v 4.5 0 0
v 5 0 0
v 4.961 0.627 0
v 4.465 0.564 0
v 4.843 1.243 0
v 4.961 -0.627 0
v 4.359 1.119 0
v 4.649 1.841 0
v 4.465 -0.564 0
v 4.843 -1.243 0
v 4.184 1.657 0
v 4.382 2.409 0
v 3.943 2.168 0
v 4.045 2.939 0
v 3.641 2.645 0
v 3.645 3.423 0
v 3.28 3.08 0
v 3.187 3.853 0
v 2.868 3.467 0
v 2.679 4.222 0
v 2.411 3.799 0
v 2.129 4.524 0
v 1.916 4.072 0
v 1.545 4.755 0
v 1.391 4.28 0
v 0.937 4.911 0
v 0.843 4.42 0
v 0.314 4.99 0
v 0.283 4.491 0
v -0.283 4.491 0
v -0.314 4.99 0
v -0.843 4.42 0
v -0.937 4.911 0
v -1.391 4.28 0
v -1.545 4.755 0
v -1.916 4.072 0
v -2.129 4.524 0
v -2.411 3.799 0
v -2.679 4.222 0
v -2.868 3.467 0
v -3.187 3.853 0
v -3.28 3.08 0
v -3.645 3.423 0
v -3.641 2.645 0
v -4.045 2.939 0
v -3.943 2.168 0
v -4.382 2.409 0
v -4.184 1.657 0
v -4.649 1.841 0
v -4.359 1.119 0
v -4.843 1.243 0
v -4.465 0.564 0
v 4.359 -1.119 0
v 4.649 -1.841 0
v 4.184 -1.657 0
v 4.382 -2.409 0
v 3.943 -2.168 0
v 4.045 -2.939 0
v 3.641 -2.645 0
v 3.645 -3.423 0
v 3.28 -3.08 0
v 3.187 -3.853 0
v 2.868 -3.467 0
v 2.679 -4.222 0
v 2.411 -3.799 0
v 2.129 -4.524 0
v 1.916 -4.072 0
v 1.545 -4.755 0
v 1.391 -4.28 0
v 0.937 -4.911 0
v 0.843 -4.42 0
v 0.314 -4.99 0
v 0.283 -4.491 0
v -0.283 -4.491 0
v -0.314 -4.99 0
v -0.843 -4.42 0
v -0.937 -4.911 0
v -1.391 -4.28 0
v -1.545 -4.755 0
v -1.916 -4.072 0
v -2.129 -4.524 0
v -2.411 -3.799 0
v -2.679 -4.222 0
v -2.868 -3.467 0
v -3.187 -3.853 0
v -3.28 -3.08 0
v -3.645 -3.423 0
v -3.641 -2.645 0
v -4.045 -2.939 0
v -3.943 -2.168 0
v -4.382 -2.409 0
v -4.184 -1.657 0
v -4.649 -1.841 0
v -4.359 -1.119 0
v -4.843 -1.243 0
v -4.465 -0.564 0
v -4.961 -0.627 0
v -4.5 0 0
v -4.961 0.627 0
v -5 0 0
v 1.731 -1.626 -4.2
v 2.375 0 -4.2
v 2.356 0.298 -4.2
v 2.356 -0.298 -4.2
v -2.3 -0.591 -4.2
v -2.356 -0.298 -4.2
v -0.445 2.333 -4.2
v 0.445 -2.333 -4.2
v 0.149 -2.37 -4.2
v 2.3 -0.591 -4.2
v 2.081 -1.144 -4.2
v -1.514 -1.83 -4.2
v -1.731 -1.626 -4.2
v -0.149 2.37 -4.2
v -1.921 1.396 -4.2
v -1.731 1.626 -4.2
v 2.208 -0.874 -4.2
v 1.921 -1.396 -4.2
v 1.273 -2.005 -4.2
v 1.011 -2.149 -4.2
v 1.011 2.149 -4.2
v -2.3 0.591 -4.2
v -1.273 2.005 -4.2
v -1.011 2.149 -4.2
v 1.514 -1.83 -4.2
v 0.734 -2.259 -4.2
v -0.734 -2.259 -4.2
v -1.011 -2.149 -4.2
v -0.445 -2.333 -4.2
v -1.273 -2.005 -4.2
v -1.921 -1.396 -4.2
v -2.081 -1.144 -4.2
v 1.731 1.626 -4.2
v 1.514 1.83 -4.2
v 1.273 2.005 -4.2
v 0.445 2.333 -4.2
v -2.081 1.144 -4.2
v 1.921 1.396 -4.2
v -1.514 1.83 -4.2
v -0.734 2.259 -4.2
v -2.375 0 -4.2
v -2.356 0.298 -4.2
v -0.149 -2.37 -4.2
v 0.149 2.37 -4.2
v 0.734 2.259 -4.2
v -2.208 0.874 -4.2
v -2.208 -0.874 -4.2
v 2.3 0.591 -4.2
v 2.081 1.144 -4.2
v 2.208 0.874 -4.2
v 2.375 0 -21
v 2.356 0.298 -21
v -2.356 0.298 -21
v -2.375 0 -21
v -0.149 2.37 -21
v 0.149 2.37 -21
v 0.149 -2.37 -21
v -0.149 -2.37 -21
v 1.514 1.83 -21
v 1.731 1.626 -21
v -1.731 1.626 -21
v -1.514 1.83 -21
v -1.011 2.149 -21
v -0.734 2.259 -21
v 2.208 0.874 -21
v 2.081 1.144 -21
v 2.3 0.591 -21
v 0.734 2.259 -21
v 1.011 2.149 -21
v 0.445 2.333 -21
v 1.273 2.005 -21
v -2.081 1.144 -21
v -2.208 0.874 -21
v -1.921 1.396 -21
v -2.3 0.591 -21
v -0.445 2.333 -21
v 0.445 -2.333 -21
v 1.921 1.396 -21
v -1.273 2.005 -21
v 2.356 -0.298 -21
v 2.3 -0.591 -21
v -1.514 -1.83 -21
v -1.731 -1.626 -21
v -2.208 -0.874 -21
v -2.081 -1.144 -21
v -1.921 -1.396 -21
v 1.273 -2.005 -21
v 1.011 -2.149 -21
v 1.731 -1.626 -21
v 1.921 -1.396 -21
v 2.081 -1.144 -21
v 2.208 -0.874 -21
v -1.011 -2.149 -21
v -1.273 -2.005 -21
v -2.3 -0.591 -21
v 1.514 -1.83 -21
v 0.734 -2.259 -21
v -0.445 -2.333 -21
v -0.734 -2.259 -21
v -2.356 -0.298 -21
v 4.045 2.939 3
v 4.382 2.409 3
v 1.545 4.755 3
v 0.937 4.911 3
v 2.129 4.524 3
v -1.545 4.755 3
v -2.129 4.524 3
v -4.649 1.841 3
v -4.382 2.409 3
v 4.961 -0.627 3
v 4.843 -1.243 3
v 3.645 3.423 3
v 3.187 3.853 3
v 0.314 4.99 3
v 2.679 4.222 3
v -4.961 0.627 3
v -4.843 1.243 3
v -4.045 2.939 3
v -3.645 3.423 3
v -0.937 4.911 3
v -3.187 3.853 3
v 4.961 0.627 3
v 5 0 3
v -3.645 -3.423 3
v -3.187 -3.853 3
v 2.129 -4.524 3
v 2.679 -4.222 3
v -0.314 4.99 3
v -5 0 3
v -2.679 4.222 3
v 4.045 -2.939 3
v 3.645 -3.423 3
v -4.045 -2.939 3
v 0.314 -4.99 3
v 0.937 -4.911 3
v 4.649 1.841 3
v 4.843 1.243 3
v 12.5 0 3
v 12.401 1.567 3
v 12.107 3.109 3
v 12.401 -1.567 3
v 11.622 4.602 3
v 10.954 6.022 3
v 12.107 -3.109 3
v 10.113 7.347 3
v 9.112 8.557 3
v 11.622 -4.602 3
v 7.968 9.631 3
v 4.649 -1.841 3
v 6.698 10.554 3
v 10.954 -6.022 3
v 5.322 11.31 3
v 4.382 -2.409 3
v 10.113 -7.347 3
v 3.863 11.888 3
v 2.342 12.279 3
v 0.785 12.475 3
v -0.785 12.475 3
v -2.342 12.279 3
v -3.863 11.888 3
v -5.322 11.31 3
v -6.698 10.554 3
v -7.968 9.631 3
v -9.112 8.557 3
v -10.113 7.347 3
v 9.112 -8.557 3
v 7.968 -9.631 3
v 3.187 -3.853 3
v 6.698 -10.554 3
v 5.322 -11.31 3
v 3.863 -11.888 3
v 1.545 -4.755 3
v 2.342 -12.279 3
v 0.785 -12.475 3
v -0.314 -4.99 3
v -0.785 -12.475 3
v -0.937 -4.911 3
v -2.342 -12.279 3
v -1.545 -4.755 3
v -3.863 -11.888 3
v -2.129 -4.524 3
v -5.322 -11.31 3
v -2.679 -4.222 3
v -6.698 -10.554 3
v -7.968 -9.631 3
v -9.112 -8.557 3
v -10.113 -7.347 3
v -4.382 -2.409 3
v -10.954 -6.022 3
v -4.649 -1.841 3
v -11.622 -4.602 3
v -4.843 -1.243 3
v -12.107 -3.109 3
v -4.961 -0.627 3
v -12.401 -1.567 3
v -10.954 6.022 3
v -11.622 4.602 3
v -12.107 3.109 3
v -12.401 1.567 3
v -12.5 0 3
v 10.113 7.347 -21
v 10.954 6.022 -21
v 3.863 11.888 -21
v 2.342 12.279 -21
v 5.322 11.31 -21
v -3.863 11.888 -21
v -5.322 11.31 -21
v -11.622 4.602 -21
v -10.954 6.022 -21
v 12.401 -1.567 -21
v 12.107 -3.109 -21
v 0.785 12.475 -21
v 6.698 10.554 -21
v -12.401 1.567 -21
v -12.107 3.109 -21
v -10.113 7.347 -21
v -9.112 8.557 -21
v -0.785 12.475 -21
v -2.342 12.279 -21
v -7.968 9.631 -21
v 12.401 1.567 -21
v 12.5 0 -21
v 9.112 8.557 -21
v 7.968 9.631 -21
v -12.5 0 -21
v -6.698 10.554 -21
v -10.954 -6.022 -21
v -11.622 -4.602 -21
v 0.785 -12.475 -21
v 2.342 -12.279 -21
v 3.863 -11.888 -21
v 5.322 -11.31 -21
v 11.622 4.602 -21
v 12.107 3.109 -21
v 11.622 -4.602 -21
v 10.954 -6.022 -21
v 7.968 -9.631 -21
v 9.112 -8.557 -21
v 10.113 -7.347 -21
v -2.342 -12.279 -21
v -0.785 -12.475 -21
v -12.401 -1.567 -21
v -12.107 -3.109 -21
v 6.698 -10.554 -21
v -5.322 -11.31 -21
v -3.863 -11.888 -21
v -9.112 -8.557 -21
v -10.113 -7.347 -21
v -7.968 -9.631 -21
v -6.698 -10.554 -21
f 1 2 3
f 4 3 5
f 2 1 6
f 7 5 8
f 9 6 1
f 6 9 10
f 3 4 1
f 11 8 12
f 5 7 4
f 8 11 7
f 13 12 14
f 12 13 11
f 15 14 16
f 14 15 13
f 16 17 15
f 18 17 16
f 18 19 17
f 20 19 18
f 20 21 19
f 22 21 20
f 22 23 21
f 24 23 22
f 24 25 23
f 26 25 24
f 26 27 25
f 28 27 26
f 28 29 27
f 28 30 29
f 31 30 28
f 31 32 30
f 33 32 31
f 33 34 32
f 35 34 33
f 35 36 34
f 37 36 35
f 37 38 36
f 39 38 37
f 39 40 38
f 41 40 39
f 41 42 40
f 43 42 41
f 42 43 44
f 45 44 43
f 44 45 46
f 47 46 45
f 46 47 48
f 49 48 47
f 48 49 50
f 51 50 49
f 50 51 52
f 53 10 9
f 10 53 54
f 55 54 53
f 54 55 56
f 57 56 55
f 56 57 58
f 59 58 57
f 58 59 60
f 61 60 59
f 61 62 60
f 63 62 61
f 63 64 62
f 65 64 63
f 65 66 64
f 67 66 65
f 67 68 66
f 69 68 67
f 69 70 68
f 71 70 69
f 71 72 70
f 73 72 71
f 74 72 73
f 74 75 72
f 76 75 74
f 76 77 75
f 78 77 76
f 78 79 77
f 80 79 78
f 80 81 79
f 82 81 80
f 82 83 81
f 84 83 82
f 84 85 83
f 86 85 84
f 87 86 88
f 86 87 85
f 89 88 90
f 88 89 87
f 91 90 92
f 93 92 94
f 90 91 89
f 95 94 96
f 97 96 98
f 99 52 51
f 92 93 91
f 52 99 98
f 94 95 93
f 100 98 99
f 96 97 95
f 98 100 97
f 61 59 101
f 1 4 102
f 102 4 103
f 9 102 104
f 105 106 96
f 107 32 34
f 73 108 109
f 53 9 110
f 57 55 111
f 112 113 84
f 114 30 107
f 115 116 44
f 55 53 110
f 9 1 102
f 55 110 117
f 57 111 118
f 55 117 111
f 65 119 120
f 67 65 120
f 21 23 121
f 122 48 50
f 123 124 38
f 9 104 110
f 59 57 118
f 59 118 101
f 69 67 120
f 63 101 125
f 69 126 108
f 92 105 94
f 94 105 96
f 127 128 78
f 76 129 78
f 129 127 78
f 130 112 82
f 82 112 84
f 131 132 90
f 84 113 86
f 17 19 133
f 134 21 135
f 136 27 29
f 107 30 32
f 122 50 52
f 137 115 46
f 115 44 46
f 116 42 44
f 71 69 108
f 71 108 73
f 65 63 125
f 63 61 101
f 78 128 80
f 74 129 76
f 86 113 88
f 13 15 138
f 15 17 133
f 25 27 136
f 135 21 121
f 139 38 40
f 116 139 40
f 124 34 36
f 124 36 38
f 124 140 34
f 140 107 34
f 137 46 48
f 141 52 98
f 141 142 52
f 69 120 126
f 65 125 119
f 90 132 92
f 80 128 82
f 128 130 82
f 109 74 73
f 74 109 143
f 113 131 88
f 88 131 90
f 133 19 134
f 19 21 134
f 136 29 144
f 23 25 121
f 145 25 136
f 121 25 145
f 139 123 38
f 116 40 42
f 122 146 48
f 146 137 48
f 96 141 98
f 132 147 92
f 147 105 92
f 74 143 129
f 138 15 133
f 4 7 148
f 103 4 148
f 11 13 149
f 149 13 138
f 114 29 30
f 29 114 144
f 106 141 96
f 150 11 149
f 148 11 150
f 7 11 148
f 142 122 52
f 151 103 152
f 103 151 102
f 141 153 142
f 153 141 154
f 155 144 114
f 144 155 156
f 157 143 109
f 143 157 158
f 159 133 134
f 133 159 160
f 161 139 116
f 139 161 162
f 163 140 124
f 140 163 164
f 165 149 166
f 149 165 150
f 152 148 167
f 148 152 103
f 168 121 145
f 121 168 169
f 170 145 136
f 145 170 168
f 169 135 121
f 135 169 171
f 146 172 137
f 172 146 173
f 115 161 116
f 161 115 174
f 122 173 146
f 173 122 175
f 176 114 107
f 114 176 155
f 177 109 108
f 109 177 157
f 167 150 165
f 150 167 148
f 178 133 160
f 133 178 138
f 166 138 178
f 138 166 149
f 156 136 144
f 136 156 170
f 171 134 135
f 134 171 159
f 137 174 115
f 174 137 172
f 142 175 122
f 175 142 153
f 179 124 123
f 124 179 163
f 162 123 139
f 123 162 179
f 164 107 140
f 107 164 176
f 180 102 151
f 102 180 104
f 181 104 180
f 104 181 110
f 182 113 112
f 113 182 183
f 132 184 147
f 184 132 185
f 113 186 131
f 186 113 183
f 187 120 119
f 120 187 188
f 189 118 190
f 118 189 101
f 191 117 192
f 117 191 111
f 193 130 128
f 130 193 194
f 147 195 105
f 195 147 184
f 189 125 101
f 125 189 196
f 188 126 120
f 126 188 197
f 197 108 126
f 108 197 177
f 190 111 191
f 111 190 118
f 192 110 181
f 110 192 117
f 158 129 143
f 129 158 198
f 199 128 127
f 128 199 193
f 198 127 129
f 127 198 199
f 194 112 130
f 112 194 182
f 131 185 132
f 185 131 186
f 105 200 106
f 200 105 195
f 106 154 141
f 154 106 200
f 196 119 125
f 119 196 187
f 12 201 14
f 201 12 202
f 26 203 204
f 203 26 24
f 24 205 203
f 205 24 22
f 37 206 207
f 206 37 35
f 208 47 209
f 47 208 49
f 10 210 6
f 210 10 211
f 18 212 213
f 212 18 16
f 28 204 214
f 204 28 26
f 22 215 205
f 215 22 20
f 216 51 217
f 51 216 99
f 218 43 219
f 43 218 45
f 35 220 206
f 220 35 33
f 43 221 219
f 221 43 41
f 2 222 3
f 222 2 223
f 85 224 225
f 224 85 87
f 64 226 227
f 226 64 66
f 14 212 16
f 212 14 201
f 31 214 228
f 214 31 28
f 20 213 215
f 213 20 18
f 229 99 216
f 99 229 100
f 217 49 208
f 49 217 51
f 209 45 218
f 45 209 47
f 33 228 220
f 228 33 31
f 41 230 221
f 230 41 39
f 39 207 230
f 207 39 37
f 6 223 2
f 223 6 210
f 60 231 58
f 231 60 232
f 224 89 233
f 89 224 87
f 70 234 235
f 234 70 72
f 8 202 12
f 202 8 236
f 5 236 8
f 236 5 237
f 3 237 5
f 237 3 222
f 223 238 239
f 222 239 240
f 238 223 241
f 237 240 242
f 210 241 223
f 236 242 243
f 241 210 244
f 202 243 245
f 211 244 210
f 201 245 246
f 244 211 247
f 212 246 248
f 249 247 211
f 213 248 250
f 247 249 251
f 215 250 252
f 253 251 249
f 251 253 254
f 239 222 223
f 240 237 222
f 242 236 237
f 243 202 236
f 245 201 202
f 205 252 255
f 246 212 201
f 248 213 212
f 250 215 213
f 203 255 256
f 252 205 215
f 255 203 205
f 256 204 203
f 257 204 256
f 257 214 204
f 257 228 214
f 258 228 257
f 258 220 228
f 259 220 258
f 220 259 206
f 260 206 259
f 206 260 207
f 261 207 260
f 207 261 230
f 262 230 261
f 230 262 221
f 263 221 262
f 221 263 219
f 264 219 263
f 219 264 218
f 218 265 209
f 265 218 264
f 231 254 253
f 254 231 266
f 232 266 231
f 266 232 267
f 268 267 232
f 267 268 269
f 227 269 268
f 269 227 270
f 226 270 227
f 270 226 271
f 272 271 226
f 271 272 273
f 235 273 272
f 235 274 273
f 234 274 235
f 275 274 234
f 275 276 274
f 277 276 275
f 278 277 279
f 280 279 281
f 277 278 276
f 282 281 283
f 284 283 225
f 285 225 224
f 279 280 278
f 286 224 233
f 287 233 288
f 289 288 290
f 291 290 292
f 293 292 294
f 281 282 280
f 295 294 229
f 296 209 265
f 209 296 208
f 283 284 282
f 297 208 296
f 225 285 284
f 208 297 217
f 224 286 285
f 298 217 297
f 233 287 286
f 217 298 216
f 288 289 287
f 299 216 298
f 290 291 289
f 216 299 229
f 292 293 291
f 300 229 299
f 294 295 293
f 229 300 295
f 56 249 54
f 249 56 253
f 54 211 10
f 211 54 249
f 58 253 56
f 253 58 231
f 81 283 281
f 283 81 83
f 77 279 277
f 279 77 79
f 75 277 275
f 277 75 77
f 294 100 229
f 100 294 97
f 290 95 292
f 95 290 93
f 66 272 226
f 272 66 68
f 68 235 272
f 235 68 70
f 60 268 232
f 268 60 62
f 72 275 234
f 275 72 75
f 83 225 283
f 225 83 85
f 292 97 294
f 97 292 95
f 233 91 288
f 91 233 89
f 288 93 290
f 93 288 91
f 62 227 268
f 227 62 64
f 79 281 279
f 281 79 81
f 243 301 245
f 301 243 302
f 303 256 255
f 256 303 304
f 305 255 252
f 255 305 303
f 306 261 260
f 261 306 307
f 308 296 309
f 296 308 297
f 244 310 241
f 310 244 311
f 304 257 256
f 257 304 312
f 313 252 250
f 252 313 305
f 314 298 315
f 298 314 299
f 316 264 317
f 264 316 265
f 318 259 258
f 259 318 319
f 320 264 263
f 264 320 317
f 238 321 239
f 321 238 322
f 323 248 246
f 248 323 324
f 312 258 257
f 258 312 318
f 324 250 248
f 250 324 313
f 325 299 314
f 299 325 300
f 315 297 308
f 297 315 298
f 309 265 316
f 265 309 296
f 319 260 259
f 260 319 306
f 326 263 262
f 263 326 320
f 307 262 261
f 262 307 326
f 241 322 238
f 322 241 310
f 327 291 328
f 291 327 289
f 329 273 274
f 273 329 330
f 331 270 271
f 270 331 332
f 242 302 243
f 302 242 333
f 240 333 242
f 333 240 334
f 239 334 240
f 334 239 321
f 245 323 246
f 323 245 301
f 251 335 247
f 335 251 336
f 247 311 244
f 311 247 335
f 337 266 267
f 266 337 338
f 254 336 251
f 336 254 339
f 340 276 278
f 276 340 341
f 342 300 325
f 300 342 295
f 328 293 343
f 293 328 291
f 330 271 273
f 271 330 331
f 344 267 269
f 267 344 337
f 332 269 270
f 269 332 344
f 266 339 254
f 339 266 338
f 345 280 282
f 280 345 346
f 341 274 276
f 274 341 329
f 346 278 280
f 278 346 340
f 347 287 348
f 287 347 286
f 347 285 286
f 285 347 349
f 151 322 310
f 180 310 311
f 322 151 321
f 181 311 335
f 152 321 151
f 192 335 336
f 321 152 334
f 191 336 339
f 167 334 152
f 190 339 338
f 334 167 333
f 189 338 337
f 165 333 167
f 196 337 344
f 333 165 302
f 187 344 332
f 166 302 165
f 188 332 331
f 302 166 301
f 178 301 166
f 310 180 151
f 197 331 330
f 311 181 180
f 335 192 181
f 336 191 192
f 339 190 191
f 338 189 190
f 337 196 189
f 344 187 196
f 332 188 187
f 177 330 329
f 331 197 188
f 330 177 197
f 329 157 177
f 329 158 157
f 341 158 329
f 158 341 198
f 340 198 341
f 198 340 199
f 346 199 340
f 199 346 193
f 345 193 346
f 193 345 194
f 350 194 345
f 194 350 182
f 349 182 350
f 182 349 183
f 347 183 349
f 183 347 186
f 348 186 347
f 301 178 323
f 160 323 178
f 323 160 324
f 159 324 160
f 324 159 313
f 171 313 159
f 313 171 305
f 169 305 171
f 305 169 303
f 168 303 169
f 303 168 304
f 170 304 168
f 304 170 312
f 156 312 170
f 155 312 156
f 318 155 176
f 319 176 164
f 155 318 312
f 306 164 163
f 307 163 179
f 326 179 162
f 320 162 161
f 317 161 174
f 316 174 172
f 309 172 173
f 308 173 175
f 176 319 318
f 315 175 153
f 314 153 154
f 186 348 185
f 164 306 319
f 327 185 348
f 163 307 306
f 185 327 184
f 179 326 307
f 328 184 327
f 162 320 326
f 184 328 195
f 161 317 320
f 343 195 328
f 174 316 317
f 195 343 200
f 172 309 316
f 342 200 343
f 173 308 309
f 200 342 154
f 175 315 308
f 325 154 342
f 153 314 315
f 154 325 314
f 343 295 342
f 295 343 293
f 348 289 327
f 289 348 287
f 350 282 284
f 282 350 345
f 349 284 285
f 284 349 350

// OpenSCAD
$fn = 50;

difference() {
	union() {
		translate(v = [0, 0, -21.0]) {
			cylinder(h = 24, r = 12.5);
		}
	}
	union() {
		translate(v = [0, 0, 0]) {
			rotate(a = [0, 0, 0]) {
				difference() {
					union() {
						translate(v = [0, 0, -24.0]) {
							cylinder(h = 24, r = 2.25);
						}
						translate(v = [0, 0, -4.2]) {
							cylinder(h = 4.2, r1 = 2.375, r2 = 4.5);
						}
						translate(v = [0, 0, -24.0]) {
							cylinder(h = 24, r = 2.375);
						}
						translate(v = [0, 0, -24.0]) {
							cylinder(h = 24, r = 2.25);
						}
					}
					union();
				}
			}
		}
		#cylinder(h = 3, r = 5.0);
	}
}
